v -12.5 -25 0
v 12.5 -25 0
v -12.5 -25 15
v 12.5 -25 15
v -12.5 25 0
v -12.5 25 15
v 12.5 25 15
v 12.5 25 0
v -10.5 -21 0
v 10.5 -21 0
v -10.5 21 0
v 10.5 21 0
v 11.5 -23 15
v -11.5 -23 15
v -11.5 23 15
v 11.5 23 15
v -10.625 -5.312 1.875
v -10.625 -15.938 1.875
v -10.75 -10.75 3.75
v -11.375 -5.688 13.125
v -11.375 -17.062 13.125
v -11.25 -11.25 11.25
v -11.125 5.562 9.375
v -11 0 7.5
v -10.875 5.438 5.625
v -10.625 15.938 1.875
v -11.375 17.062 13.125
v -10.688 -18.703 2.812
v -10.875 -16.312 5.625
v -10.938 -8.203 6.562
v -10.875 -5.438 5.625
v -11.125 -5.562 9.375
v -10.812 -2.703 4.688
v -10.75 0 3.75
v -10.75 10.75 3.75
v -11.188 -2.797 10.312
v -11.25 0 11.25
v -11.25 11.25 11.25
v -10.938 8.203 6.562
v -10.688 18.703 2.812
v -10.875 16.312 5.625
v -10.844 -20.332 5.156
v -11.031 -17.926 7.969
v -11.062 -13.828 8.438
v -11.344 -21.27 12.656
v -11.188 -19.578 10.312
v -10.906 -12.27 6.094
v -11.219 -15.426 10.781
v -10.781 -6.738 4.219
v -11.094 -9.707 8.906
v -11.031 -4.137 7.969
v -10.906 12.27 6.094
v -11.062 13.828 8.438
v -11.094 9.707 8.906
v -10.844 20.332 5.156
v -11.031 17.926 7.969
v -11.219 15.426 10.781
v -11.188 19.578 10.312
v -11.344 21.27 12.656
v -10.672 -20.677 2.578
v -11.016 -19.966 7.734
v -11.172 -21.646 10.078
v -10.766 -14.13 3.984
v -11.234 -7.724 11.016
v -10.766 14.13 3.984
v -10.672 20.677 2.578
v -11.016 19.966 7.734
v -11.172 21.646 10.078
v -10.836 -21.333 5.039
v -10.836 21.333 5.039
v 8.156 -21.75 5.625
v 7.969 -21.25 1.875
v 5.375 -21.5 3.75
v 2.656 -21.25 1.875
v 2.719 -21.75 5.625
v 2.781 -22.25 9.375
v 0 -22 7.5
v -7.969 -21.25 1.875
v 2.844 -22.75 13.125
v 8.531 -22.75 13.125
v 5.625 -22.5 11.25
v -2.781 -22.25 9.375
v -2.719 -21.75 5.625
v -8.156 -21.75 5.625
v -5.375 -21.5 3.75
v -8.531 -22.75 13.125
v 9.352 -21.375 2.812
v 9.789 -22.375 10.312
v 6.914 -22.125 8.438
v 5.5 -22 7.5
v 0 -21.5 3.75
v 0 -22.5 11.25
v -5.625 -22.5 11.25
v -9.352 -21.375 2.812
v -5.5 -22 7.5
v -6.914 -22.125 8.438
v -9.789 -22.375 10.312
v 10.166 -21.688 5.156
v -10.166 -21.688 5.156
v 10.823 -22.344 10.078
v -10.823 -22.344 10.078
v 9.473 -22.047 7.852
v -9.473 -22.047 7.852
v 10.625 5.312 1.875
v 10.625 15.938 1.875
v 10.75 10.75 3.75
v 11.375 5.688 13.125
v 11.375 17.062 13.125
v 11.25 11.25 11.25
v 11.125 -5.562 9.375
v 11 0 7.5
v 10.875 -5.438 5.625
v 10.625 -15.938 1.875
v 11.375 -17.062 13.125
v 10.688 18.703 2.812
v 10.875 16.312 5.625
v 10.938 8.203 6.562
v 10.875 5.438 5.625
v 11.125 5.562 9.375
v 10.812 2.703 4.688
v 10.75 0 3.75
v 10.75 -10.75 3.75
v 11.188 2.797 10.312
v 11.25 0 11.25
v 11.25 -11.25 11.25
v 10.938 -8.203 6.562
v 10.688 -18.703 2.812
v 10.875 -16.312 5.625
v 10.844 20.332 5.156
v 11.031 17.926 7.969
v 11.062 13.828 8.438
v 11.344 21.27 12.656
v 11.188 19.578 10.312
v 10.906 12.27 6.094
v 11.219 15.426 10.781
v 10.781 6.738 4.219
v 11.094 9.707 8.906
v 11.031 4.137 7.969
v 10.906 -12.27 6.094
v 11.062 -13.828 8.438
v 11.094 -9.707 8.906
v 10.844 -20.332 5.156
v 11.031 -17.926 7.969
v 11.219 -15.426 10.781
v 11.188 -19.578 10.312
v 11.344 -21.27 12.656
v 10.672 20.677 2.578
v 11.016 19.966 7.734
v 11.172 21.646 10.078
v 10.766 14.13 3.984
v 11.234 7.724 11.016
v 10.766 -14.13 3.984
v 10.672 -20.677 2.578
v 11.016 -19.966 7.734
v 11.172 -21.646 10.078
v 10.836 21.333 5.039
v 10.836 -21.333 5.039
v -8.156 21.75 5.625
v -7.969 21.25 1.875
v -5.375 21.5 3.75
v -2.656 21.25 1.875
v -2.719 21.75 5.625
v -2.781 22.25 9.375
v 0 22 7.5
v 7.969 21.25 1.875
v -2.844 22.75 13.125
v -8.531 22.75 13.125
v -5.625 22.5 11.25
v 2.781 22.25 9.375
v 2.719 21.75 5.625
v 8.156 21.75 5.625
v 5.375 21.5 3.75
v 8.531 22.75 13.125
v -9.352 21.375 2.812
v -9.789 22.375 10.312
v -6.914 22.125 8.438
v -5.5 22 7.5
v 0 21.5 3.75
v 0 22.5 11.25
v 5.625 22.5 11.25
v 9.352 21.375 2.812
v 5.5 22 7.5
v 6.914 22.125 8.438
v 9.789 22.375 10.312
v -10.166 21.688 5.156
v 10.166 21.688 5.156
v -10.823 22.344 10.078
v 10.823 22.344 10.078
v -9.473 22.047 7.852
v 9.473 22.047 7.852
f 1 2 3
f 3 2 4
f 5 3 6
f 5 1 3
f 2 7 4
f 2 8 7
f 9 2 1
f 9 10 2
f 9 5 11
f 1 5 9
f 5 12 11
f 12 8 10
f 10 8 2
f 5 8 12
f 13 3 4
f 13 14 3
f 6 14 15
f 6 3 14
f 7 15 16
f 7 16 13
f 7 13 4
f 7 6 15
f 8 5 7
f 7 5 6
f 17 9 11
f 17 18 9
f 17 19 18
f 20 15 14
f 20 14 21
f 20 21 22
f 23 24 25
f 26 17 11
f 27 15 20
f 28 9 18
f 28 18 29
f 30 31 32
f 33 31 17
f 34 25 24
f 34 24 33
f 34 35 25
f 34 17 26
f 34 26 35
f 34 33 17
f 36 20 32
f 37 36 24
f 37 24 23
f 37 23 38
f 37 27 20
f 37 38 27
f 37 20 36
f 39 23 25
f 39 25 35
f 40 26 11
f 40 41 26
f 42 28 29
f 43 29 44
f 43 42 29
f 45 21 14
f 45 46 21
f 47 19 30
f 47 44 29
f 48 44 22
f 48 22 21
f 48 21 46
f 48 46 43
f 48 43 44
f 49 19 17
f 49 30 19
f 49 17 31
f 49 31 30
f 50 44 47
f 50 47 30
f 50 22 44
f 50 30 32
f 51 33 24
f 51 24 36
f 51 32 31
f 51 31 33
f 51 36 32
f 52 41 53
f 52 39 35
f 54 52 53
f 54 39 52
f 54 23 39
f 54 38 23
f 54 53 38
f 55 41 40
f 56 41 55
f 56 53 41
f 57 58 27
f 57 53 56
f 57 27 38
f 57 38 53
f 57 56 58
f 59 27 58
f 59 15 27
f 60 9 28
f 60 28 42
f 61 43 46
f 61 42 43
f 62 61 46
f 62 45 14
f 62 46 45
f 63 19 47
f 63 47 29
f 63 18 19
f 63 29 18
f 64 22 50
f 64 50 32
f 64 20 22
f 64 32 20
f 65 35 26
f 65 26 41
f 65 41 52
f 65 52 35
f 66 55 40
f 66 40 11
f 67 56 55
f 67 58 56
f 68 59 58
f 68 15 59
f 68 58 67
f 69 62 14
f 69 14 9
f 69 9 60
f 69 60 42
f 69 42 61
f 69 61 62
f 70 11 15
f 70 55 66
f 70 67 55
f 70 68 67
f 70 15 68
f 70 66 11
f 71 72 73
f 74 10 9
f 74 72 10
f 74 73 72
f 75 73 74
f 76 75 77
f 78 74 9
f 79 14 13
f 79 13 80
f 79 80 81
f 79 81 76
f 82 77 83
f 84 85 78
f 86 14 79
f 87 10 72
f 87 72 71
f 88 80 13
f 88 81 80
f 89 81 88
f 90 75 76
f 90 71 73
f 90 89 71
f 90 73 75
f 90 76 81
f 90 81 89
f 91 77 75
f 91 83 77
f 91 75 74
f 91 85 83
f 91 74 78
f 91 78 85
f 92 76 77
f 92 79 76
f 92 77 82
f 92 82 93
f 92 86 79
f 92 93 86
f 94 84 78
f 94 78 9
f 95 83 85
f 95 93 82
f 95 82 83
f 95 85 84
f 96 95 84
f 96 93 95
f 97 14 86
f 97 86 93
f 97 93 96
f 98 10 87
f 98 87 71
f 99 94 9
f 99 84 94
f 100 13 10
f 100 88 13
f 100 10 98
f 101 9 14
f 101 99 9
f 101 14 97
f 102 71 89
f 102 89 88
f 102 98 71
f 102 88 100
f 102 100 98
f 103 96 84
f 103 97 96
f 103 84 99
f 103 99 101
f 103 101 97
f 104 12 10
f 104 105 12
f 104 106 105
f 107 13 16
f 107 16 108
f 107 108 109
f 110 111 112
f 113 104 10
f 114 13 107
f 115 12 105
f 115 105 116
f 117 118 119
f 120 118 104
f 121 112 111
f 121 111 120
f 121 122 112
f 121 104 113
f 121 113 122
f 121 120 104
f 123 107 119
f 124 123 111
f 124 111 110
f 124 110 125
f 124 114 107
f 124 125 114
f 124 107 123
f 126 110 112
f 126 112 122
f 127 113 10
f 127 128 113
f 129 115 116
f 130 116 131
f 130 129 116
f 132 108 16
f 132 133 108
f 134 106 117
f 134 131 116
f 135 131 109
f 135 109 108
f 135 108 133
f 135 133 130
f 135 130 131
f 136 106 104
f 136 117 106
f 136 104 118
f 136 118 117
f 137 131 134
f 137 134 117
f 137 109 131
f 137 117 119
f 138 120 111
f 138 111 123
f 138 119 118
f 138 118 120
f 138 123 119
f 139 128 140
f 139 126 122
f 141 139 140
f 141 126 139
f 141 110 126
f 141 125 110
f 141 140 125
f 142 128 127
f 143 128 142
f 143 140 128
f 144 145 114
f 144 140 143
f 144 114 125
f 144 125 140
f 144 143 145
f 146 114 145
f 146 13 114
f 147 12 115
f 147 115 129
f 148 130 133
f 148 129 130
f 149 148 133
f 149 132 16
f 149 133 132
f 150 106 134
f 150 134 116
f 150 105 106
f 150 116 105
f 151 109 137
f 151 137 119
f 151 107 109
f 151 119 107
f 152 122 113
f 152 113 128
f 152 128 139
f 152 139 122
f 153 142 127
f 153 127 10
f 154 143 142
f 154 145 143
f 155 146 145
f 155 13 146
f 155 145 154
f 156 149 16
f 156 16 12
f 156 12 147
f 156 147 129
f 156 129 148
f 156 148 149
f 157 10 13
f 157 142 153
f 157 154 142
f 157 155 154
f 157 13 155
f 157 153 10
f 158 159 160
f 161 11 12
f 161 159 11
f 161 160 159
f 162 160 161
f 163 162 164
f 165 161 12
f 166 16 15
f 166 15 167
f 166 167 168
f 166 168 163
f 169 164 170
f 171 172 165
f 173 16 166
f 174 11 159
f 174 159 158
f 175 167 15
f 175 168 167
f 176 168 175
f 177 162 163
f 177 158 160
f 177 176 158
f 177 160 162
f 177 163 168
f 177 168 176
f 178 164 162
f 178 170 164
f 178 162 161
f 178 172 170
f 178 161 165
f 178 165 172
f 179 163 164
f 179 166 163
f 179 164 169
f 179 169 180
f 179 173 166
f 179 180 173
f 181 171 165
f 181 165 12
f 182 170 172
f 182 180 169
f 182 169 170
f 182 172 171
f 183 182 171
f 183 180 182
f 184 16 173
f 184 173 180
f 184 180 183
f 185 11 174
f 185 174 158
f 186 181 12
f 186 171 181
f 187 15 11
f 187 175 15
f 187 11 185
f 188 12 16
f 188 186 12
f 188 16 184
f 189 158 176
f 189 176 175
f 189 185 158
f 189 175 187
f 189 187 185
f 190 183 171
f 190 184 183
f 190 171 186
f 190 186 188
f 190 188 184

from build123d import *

# Parameters (mm, degrees)
SKETCH_W    = 25
SKETCH_H    = 50
PAD_DEPTH   = 15
SKETCH002_W = 21
SKETCH002_H = 42
SKETCH001_W = 23
SKETCH001_H = 46


with BuildPart() as part:
    # Sketch → Pad (new body)
    with BuildSketch(Plane.XY):
        Rectangle(SKETCH_W, SKETCH_H)
    extrude(amount=PAD_DEPTH)

    # Sketch002 (on Face5 of Pad) → SubtractiveLoft section 0
    with BuildSketch(Plane(origin=(0, 0, 0), x_dir=(1, 0, 0), z_dir=(0, 0, -1))):
        Rectangle(SKETCH002_W, SKETCH002_H)
    # Sketch001 (on Face6 of Pad) → SubtractiveLoft section 1
    with BuildSketch(Plane.XY.offset(15)):
        Rectangle(SKETCH001_W, SKETCH001_H)
    loft(mode=Mode.SUBTRACT)


solid = part.part
